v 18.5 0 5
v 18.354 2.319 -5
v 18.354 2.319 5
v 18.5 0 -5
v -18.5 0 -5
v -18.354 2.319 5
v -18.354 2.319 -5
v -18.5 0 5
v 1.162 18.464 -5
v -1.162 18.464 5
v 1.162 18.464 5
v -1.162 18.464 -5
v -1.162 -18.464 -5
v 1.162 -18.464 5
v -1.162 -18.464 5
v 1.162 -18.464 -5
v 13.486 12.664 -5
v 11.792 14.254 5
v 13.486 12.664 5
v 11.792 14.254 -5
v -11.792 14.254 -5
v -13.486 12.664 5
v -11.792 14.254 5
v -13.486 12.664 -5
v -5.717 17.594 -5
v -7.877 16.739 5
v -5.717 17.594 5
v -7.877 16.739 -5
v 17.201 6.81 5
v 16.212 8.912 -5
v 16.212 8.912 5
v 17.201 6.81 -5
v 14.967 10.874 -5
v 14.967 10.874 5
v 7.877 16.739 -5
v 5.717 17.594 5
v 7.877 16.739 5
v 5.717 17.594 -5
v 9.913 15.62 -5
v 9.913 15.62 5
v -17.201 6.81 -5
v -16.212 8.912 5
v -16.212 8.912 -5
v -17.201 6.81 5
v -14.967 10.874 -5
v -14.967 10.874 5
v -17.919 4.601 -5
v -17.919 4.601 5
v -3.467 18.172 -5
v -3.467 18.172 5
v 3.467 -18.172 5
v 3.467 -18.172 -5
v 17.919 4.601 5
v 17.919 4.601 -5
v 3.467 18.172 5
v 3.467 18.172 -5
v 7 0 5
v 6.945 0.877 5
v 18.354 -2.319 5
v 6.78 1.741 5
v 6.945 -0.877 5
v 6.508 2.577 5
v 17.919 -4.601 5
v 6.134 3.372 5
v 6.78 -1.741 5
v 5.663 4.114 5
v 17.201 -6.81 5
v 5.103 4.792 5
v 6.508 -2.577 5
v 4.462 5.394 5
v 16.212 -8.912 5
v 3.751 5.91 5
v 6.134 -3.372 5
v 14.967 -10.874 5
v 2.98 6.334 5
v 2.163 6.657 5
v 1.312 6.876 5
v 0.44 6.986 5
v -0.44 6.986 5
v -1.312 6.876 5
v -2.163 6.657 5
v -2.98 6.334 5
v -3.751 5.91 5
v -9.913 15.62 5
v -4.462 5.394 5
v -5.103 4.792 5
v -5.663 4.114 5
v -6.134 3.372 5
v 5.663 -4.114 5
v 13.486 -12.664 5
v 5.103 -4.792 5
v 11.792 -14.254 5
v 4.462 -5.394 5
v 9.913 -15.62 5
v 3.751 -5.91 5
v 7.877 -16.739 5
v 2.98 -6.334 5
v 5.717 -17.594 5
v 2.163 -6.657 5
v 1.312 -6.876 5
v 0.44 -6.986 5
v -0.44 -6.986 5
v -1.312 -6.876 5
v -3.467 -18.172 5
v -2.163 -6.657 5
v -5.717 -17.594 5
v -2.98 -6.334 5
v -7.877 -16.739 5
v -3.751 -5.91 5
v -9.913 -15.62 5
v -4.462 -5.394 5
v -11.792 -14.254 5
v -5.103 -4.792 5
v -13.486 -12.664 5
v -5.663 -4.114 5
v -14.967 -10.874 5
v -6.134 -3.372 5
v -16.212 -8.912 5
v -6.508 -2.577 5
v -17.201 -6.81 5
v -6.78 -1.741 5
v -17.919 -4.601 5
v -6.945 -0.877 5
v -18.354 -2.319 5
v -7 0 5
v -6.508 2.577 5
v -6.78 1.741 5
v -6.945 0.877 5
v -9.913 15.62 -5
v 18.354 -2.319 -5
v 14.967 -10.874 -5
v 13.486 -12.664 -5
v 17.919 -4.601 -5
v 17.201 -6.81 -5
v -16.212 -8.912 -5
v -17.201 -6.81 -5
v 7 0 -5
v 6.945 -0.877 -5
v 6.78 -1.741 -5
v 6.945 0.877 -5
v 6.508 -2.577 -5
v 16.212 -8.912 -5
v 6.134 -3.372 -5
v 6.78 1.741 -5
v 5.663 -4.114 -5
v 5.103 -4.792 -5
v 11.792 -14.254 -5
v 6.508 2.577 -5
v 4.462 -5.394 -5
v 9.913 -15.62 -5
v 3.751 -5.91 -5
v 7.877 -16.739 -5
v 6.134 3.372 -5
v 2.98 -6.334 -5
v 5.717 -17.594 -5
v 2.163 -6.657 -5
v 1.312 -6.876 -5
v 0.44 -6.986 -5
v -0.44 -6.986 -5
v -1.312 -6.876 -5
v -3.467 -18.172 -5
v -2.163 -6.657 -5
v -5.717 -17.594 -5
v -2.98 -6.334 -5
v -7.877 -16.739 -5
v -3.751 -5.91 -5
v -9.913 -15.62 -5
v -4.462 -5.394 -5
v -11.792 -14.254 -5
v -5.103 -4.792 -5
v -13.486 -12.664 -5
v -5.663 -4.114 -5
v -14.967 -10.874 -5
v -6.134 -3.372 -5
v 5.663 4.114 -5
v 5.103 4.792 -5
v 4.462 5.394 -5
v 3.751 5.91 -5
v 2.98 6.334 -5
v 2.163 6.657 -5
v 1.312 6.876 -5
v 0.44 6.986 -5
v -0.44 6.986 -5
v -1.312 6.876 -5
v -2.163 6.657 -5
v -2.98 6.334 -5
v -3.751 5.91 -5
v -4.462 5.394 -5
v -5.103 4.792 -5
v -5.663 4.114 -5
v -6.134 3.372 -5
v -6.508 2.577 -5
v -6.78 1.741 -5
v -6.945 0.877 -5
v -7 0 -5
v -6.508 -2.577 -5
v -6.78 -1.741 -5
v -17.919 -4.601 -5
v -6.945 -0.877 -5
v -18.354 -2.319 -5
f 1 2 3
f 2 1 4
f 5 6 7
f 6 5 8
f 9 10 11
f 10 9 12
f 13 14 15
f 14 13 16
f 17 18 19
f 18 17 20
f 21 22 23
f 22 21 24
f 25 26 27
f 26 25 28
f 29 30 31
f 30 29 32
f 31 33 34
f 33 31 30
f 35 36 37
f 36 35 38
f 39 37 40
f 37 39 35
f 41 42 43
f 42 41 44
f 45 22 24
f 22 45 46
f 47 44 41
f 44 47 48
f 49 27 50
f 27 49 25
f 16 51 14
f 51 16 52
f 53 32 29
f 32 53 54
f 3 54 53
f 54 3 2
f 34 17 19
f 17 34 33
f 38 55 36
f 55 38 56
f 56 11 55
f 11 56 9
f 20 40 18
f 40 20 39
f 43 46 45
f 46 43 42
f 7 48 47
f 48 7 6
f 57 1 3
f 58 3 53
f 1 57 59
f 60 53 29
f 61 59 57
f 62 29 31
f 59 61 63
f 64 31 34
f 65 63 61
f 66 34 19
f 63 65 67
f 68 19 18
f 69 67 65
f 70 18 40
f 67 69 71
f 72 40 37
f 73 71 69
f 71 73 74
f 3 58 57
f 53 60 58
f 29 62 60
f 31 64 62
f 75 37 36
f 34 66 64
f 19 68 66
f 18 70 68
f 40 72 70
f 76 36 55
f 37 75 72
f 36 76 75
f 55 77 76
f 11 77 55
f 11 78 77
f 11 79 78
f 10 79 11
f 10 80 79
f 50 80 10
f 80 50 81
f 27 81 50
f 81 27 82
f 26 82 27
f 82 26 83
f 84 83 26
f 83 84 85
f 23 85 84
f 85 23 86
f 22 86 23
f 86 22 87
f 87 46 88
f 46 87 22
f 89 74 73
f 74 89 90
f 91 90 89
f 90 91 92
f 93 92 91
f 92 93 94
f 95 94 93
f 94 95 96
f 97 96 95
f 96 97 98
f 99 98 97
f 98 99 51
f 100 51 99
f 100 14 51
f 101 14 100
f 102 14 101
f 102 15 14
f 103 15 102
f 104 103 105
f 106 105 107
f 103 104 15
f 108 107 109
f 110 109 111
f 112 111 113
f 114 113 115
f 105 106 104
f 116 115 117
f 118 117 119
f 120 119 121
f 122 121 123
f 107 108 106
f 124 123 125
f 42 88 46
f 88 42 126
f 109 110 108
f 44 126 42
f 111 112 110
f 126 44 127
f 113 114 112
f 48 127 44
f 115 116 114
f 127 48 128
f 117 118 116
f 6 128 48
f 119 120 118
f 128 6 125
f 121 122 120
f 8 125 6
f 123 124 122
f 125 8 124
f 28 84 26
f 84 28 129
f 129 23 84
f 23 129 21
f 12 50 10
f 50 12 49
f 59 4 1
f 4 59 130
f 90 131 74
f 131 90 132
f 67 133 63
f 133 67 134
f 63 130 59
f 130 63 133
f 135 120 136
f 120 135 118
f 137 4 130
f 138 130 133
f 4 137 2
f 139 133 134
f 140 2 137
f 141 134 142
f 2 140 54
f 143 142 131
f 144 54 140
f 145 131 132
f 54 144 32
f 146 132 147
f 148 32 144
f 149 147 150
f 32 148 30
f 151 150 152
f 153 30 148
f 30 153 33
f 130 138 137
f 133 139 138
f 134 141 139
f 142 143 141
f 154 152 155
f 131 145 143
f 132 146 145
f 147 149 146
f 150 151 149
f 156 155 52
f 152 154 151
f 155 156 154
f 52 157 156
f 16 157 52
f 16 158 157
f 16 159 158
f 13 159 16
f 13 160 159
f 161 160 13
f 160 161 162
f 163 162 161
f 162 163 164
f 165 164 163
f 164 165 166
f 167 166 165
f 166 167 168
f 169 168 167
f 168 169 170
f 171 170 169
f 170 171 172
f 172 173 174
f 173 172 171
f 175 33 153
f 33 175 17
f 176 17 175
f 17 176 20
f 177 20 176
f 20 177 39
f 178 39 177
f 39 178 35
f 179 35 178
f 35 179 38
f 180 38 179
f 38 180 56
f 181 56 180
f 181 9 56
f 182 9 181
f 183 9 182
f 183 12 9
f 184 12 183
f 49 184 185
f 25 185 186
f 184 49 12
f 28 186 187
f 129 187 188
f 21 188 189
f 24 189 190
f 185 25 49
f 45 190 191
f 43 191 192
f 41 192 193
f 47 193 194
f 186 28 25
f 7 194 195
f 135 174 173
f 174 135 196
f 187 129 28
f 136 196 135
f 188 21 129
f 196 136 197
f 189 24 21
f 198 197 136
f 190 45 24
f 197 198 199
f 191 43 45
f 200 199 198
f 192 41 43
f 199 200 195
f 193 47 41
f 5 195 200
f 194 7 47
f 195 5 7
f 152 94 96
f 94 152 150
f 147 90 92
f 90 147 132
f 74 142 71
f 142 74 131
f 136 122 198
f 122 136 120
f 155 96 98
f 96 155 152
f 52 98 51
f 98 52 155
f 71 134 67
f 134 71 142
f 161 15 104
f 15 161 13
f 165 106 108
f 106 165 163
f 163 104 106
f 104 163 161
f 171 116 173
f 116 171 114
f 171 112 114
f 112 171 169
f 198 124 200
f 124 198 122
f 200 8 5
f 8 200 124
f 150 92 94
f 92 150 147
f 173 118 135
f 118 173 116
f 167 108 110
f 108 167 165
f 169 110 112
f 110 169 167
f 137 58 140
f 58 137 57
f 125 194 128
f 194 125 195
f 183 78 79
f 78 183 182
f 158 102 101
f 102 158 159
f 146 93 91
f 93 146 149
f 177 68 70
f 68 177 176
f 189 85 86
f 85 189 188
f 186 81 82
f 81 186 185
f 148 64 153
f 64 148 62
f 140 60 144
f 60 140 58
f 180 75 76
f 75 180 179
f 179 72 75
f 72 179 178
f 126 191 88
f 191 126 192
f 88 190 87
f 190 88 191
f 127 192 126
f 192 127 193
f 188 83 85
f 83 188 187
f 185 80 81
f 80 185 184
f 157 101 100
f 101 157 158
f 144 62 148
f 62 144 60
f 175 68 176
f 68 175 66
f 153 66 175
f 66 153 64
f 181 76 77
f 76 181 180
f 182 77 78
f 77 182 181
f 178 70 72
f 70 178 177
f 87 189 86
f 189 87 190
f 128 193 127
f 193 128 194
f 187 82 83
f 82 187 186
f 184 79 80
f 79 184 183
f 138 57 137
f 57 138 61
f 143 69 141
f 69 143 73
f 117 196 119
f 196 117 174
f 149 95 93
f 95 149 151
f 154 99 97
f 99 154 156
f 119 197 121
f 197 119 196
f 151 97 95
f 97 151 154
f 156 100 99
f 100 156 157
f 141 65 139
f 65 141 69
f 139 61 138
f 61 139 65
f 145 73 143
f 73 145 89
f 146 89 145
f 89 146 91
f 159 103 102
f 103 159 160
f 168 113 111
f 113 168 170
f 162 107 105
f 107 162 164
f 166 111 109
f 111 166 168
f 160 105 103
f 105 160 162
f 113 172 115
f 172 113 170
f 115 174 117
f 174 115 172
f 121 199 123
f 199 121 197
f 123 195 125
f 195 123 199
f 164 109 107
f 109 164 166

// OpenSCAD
$fn = 50;


difference() {
	union() {
		translate(v = [0, 0, -5.0000000000]) {
			cylinder(h = 10, r = 18.5000000000);
		}
	}
	union() {
		translate(v = [0, 0, -100.0000000000]) {
			cylinder(h = 200, r = 7);
		}
	}
}
